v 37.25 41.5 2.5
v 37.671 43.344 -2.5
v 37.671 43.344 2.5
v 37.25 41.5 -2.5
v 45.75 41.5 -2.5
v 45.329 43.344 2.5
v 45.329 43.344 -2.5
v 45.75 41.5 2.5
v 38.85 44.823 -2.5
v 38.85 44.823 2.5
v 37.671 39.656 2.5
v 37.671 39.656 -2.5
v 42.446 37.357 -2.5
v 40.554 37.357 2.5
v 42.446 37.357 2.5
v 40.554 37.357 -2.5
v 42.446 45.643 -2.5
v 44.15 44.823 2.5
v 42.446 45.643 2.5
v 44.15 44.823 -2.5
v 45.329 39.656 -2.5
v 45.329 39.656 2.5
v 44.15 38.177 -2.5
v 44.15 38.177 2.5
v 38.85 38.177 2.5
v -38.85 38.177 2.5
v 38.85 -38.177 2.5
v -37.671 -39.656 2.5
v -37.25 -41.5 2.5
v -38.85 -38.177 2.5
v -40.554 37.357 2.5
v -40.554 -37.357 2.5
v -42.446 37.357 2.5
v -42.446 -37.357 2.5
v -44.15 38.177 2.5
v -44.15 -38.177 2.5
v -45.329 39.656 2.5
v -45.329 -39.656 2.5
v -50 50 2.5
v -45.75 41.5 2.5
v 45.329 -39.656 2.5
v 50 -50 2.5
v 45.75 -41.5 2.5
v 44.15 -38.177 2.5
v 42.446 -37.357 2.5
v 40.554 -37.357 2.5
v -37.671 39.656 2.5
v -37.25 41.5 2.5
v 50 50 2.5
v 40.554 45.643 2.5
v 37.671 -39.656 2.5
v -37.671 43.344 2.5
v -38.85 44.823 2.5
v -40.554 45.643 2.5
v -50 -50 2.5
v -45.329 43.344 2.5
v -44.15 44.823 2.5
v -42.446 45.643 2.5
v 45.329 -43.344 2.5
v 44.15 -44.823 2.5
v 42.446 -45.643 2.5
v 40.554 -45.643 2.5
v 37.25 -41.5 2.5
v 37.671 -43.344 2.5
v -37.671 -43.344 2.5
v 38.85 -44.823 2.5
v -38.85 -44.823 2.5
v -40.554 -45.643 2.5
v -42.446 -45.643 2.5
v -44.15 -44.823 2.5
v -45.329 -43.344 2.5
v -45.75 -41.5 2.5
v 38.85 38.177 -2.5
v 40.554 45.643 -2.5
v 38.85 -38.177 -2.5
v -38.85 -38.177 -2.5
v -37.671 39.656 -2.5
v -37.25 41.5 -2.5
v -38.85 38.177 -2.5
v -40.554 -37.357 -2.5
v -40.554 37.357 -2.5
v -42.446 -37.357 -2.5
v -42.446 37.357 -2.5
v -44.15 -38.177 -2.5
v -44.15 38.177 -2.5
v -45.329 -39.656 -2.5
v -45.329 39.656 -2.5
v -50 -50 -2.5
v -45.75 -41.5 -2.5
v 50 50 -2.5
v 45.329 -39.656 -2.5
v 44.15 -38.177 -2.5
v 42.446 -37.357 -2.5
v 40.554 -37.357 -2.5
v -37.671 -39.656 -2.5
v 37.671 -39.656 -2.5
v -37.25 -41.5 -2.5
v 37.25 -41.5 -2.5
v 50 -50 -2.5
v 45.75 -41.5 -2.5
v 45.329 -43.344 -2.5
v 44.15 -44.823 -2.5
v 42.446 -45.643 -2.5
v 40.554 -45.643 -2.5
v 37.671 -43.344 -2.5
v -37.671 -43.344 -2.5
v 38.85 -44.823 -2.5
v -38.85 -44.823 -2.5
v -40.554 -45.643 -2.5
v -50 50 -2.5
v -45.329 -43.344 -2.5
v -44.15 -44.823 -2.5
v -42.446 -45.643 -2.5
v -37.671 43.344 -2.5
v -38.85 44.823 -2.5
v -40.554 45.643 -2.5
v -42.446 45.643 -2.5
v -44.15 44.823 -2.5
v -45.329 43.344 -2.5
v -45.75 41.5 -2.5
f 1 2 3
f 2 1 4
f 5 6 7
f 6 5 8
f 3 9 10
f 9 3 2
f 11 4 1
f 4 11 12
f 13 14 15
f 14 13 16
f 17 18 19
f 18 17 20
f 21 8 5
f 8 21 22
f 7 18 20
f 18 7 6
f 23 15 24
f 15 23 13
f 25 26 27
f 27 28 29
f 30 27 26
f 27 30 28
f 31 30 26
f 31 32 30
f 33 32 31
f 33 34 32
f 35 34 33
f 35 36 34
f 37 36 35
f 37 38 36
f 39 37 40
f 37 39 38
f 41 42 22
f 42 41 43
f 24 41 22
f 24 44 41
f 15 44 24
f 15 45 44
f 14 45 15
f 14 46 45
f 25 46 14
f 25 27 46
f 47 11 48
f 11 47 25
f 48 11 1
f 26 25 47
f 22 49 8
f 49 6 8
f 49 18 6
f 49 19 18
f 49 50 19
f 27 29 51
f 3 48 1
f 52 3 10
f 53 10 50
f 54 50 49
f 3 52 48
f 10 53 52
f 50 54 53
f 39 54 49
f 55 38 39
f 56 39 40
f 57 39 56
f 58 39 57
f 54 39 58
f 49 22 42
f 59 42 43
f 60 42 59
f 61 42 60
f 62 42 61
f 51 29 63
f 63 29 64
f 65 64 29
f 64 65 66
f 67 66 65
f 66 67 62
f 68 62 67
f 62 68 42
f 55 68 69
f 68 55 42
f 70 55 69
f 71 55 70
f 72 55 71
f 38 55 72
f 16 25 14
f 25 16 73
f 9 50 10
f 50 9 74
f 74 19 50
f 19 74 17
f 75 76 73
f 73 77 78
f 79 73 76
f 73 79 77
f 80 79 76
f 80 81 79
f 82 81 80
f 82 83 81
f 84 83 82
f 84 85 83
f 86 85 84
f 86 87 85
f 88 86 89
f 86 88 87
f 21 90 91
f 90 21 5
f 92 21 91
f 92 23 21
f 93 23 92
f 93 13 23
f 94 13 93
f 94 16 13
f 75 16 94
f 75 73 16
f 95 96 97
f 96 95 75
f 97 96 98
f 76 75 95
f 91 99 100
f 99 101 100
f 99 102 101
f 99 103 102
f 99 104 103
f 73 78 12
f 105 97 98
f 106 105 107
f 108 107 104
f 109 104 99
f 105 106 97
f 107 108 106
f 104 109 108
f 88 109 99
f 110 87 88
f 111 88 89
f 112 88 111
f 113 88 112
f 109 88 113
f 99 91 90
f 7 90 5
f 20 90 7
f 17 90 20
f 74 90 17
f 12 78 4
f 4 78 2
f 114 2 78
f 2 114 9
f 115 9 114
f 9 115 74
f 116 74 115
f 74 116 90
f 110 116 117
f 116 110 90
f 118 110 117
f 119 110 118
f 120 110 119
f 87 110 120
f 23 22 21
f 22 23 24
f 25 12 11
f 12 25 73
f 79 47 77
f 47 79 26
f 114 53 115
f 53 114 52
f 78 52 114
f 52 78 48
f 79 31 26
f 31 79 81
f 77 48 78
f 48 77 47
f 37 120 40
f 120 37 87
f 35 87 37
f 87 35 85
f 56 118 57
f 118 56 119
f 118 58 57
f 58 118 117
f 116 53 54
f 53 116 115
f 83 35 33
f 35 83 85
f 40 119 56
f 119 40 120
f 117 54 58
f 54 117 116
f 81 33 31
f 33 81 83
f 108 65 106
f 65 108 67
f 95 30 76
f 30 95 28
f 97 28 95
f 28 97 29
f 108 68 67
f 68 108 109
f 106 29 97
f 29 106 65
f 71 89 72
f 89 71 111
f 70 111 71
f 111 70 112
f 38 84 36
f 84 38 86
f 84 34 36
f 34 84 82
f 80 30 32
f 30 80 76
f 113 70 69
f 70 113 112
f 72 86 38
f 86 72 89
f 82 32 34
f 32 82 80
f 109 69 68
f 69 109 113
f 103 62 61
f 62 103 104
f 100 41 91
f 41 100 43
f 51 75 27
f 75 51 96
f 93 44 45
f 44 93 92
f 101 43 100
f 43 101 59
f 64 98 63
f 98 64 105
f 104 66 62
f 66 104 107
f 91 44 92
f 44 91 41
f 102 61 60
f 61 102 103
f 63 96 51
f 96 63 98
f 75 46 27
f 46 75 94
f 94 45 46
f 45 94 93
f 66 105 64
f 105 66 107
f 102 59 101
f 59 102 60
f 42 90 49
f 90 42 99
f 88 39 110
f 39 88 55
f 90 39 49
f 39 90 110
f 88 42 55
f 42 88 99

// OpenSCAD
// Generated by SolidPython 1.1.3 on 2024-03-13 12:59:54


difference() {
	cube(center = true, size = [100, 100, 5]);
	union() {
		translate(v = [41.5000000000, 41.5000000000]) {
			cylinder(center = true, h = 5, r = 4.2500000000);
		}
		translate(v = [-41.5000000000, 41.5000000000]) {
			cylinder(center = true, h = 5, r = 4.2500000000);
		}
		translate(v = [-41.5000000000, -41.5000000000]) {
			cylinder(center = true, h = 5, r = 4.2500000000);
		}
		translate(v = [41.5000000000, -41.5000000000]) {
			cylinder(center = true, h = 5, r = 4.2500000000);
		}
	}
}
/***********************************************
*********      SolidPython code:      **********
************************************************
 
import solid
import numpy as np
import numbers
import pudb
from solid.utils import *
import viewscad
import subprocess
import os
import os.path as osp
import math
import sys

chamfer_extrude=solid.import_scad("./chamfer_extrude.scad")
chamfer_extrude=chamfer_extrude.chamfer_extrude
r = viewscad.Renderer(width=800, height=800)

def debug(model,f_name,path="/home/ts/code/projects/mfd/designs/debug"):
    solid.scad_render_to_file(model,osp.join(path,f_name)+".scad")
#generate position list of wells using offset from center
wells_pos_from_center_4 = lambda offset: [[-offset,offset],
                                        [offset, offset],
                                        [-offset, -offset],
                                        [offset, -offset]]
wells_pos_from_center_2 = lambda offset: [[offset,0],
                                        [-offset,0]]

def make_well(dims,shape=None,height=None,dxf=False):
    def circle_cylinder():
        if dxf or (height is None):
            well = solid.circle(r=dims, segments=64)
        else:
            well = solid.cylinder(r=dims, h=height, segments=64, center = True)
        return well
    if dims is None:
        sys.exit("radius needs to be a number")
    if isinstance(dims, numbers.Number):
        well =circle_cylinder()
    elif len(dims)==1:
        if isinstance(dims[1], numbers.Number):
            well =circle_cylinder()
        else:
            sys.exit("radius needs to be a number")
    elif len(dims)==2:
        well = solid.square(dims,center = True)
    elif len(dims)==3:
        well = solid.cube(dims, center = True)
    return well

def wells_top_bottom(center_gap,device_dims=None,shape=None,height=None, positions = None, dxf = False,well_shape=None):
    if well_shape == None:
        well_shape = make_well(device_dims,shape=shape,height=height,dxf=dxf)
    wells = []
    if positions is None:
        offset = radius+radius/2.0
        positions = wells_pos_from_center_2(offset)
    if dxf or (height is None):
        height = 0
    for position in positions:
        if dxf:
            wells.append(solid.translate([position[0],position[1]])(well_shape))
        else:
            wells.append(solid.translate([position[0],position[1],height/2.0])(well_shape))
    return  union()(*wells)

#place wells in four corners 
def four_corner(radius,height=None, positions = None, dxf = False):
    #if well pos not specified set
    #to equally spaced by half radius
    if positions is None:
        offset = radius+radius/2.0
        positions = wells_pos_from_center_4(offset)
    if dxf or (height is None):
        height = 0
    #make wells at positions with specified radius and height
    wells = []
    for position in positions:
        #make circle if making dxf
        if dxf:
            well_shape = solid.circle(r=radius, segments=64)
            well_shape = solid.translate([position[0],position[1]])(well_shape)
        #if stl make cylinder
        else:
            well_shape = solid.cylinder(r=radius, h=height, segments=64, center = True)
            well_shape = solid.translate([position[0],position[1],height/2.0])(well_shape)
        wells.append(well_shape)
    return  union()(*wells)

#generate channels 
def make_channels(length,width,height=0,num_chans=1,max_chans=None,spacing=None, dxf = False,
                  rotate_channels=False):
    if dxf or (height is None):
        height = 0
    #if channel gap not defined, is equal to
    if spacing is None: spacing = width
    #calculate number of channels if fitting max num within given width
    if not max_chans is None:
        import math
        num_chans = math.floor((max_chans-spacing)/(width+spacing))
    #get total width of channel section  
    total_width = (width*num_chans)+(spacing*(num_chans-1))

    #make template channel
    #if rotate_channels: width, length = length, width
    if dxf:
        channel_t = solid.square([length,width],center = True)
    else:
        channel_t = solid.cube([length,width,height], center = True)

    #if number channels is even, offset the first channel to center its gap
    if num_chans % 2 == 0: centering = -(width/2.0+spacing/2.0)
    else: centering = 0
    #move template channel up to align bottom at z = 0 
    #and offset center if necessary
    if dxf:
        channel_t = solid.translate([0,centering])(channel_t)
    else:
        channel_t = solid.translate([0,centering,height/2.0])(channel_t)

    #if rotate_channels: length,width = width,length
    #start making the channels
    channels = []
    for i in range(num_chans):
        #if i=0 there is no translation
        #if i=1, we make the first channel adjacent to second
        direction = i

        #if i>=1, we add channels alternating left and right
        if i >= 1:
            direction = -(i/2.0)
            if i % 2 == 1: direction = (-direction)+0.5
                
        #make channel at right position and add it to channel list
        translation_coords = [0,direction*(width+spacing)]
        #if rotate_channels: translation_coords = [direction*(width+spacing),0]
        if dxf:
            channel = solid.translate(translation_coords)(channel_t)
        else:
            channel = solid.translate([*translation_coords,0])(channel_t)
        channels.append(channel)
    
    #group all channels as one object
    channels = union()(*channels)
    #compute the x,y,z dimensions in order to pass as arguments 
    #for construction of other parts of device (such as the chambers)
    measurements = {'x':(length/2.0,-length/2.0),
                    'y':(total_width/2.0,-total_width/2.0)}
    if not dxf:
        measurements['z'] = (height,0)
    if rotate_channels:
        channels = solid.rotate(90)(channels)
        measurements['x'],measurements['y']=measurements['y'],measurements['x']
    return channels,measurements

def make_chambers(msrs,height=None,extra=0,len_until=None,width=None, dxf = False):
    #computes x,y,z length
    total = lambda x : abs(x[0]) + abs(x[1])
    
    #if specific height if specified
    #otherwise use same height as channels
    if dxf:
        pass
    elif not height is None:
        msrs['z'] = (height,0)
    else:
        msrs['z'] = (0,0)
        
    #make copy of measurements from channels to modify chamber dimensions 
    #and add length to chambers as specified
    chamber_dims = msrs.copy()
    #calculate length of chamber to reach specified offset
    if not len_until is None:
        chamber_len = len_until-(msrs['x'][0])
    #or add specified length to channel length (if not specified, adds 0)
    else:
        chamber_len = msrs['x'][0]+extra
    #set the chamber length based 
    chamber_dims['x'] = (chamber_len/2.0,-(chamber_len/2.0))
    #compute final dimensions of chamber
    if not width is None:
        chamber_dims['y'] = (width/2.0,-width/2.0)
    chamber_dims = [total(size) for size in chamber_dims.values()]
        
    #calculate chamber translation offset to place adjacent to channels
    chamber_trslt = msrs['x'][0]+(chamber_len/2.0)
    #compute chamber translation coordinates to align with channels
    #x = 1 moves chamber above channels
    #x = -1 moves chamber below channels
    if dxf:
        trslt = lambda x : [x*(chamber_trslt),0]
    else:
        trslt = lambda x : [x*(chamber_trslt),0,msrs['z'][0]/2.0]
    
    #function to make chamber at top or at bottom 
    if dxf:
        move = lambda x : solid.translate(trslt(x))(solid.square(chamber_dims, center = True) )
    else:
        move = lambda x : solid.translate(trslt(x))(solid.cube(chamber_dims,center = True))
    #make top and bottom chambers and return them as grouped
    top = move(1)
    bottom = move(-1)
    #chambers=solid.rotate(90)(solid.union()(top,bottom))
    chambers=(solid.union()(top,bottom))

    return chambers

#create alignment features 
def alignment_features(unit,dims,grid_size, mask_size = None, alignment = "hollow", units_from_center = (2.5,2.5), corner_len=None):
    width = grid_size[0]*dims[0]
    length = grid_size[1]*dims[1]
    if mask_size is None and corner_len is None:
        corner_len = (dims[0] + dims[1]) /2 / 8
    corner = lambda thickness_div : solid.union()( solid.square([corner_len,corner_len/thickness_div],center=False), solid.square([corner_len/thickness_div,corner_len],center=False) )
    
    def make_full(thickness_div):
        thickness = corner_len/thickness_div
        tr = solid.translate([0, 0, 0 ])(solid.rotate(180)(corner(thickness_div)))
        tr = solid.translate([thickness/2,thickness/2,0])(tr)
        bl = solid.translate([0, 0, 0 ])(solid.rotate(0)(corner(thickness_div)))
        bl = solid.translate([-thickness/2,-thickness/2,0])(bl)
        return solid.union()(tr,bl)
    
    def make_hollow(thickness_div):
        thickness = corner_len/(thickness_div/2)
        inner = make_full(thickness_div)
        outer = make_full(thickness_div/2)
        hollow = outer - inner 
        return hollow
    
    center = (width /2 , length/2)
    mask_pos = lambda x,y : (center[0] + x*(float(units_from_center[0])*dims[0]), center[1] + y*(float(units_from_center[1])*dims[1]))
    positions = []
    positions.append(mask_pos(1,0))
    positions.append(mask_pos(0,1))
    positions.append(mask_pos(-1,0))
    positions.append(mask_pos(0,-1))
    make_mask = lambda mtype : make_hollow(8) if mtype == "hollow" else make_full(8)
    masks = [ solid.translate([*position,0])(make_mask(alignment)) for position in positions]
    
    solid.scad_render_to_file(solid.union()(*masks),"./designs/open_chamber/masks.scad")
    #return unit - solid.union()(*masks)
    return solid.union()(*masks,unit)

def create_outline(thickness, array, dims, grid_size,):
    width = grid_size[0]*dims[0] + thickness *2
    length = grid_size[1]*dims[1] + thickness *2
    outer = solid.translate([-thickness, -thickness,0])(solid.square([width, length]))
    return outer-array

def create_wall(wall_thickness, outline_thickness, dims, grid_size, wall_height = 2000, dxf = False):
    inner_width = grid_size[0]*dims[0] + outline_thickness *2
    inner_length = grid_size[1]*dims[1] + outline_thickness *2
    outer_width = inner_width + wall_thickness * 2
    outer_length = inner_length + wall_thickness * 2
    outer_pos_x = -outline_thickness-wall_thickness
    outer_pos_y = -outline_thickness-wall_thickness
    inner_pos_x = -outline_thickness
    inner_pos_y = -outline_thickness
    if dxf:
        inner_wall = solid.translate([inner_pos_x,
                                      inner_pos_y,
                                      0])(solid.square([inner_width, inner_length]))
        outer_wall = solid.translate([outer_pos_x,
                                      outer_pos_y,
                                      0])(solid.square([outer_width, outer_length]))

        return outer_wall-inner_wall
    else:
        inner_wall = solid.translate([inner_pos_x,
                                      inner_pos_y,
                                      0])(solid.cube([inner_width, inner_length,wall_height]))
        outer_wall = solid.translate([outer_pos_x,
                                      outer_pos_y,
                                      0])(solid.cube([outer_width, outer_length,wall_height]))

        return outer_wall-inner_wall, {'wall_height': wall_height,
                                       'wall_thickness': wall_thickness,
                                       'inner_width':inner_width,
                                       'inner_length': inner_length,
                                       'outer_width': outer_width,
                                       'outer_length': outer_length,
                                       'outer_pos_x' : outer_pos_x,
                                       'outer_pos_y' : outer_pos_y,
                                       'inner_pos_x' : inner_pos_x,
                                       'inner_pos_y' : inner_pos_y}

def create_thicker_wall(wall_thickness, outer_wall_offset, wall_dims, dims, grid_size, height_start = .2, height_end=2, dxf = False):
    addon_wall,thicker_wall_dims = create_wall(wall_thickness, outer_wall_offset, dims, grid_size, wall_height=height_end-height_start, dxf = False)
    addon_wall = solid.translate([0,0,height_start])(addon_wall)

    thicker_wall_dims['wall_height'] = height_end
    thicker_wall_dims['wall_thickness'] = wall_dims['wall_thickness'] + wall_thickness
    return addon_wall, thicker_wall_dims
 
def add_lock_to_wall(wall,wall_dims,y_offset = 0,cut_ratio=0.7,L_length=3, gap_ratio=0.05, axis="x",width_ratio=1/2):
    # Makes L shape
    def make_L(max_length,length_thickness,max_width,width_thickness,height,y_offset):
        length = solid.cube([max_length,length_thickness,height])
        width = solid.cube([width_thickness,max_width,height])
        width = solid.translate([max_length-(width_thickness),0,0])(width)
        L = solid.union()(width,length)
        debug(L,"L")
        if axis == "x":
            L = solid.rotate(-90)(L)
            L = solid.translate([0,max_length,0])(L)
        else:
            L = solid.rotate(-180)(L)
            L = solid.translate([max_length,max_width,0])(L)
        return solid.translate([0,0,y_offset])(L)
    
    lock_length = L_length
    lock_width = wall_dims['wall_thickness']*width_ratio
    lock_length_thickness = lock_width/2
    lock_width_thickness = lock_width/2
    L_lock = make_L(lock_length,lock_length_thickness,lock_width,lock_width_thickness, wall_dims['wall_height']-y_offset, y_offset)
    
    margin_space = lock_length - lock_length*(1-gap_ratio)
    key_length = lock_length-margin_space
    key_length_thickness = lock_length_thickness-(margin_space*2)
    key_width = lock_width-(margin_space*2)
    key_width_thickness = lock_width_thickness-(margin_space*2)
    L_key = make_L(key_length,key_length_thickness,key_width,key_width_thickness, wall_dims['wall_height']-y_offset, y_offset)
    L_key = solid.translate([margin_space,margin_space,0])(L_key)
    L = solid.union()(L_lock,L_key)
    debug(L,"L")
    
    #Make cube to be used as negative to split frame in a half
    #Can choose if making left or right negative, specify ratio of split
    def make_negative(right,cut_ratio):
        if axis == "x":
            if right:
                length = wall_dims['outer_length']*(1-cut_ratio)
                pos_x = wall_dims['outer_pos_x']+(wall_dims['outer_length']*cut_ratio)
            else:
                length = wall_dims['outer_length']*(cut_ratio)
                pos_x = wall_dims['outer_pos_x'] 
            negative = solid.cube([wall_dims['outer_width'],length, wall_dims['wall_height']])
            negative = solid.translate([wall_dims['outer_pos_y'],pos_x,0])(negative)
        else:
            if right:
                length = wall_dims['outer_width']*(1-cut_ratio)
                pos_x = wall_dims['outer_pos_y']+(wall_dims['outer_width']*cut_ratio)
            else:
                length = wall_dims['outer_width']*(cut_ratio)
                pos_x = wall_dims['outer_pos_y'] 
            negative = solid.cube([length,wall_dims['outer_length'], wall_dims['wall_height']])
            negative = solid.translate([pos_x,wall_dims['outer_pos_x'],0])(negative)
        return negative, pos_x, length 
                      
    #Make negatives
    negative_right, right_half_pos_x, right_half_length = make_negative(True,cut_ratio)
    negative_left, left_half_pos_x, right_half_length = make_negative(False,cut_ratio)
    #Make halves
    left_half = solid.difference()(wall,negative_right)
    right_half = solid.difference()(wall,negative_left)
    def place_L(L, L_length,L_width):
        #Place L on top wall       
        offset_to_center = (wall_dims['wall_thickness']-L_width)/2
        if axis == "x":
            y_pos_top = (wall_dims['outer_pos_y'] +
                    wall_dims['outer_width'] - 
                    L_width - offset_to_center)
            top_L = solid.translate([y_pos_top,
                                     right_half_pos_x-(L_length),
                                     0])(L)
            #Place L on bottom wall       
            y_pos_bottom = wall_dims['outer_pos_y']+offset_to_center
            bottom_L = solid.translate([y_pos_bottom,
                                        right_half_pos_x-L_length,
                                        0])(L)
        else:
            y_pos_top = (wall_dims['outer_pos_x'] +
                    wall_dims['outer_length'] -
                    (L_width+offset_to_center))
            top_L = solid.translate([right_half_pos_x-L_length,
                                     y_pos_top,
                                     0])(L)
            #Place L on bottom wall       
            y_pos_bottom = wall_dims['outer_pos_y']+offset_to_center
            bottom_L = solid.translate([right_half_pos_x-L_length,
                                        y_pos_bottom,
                                        0])(L)
        return bottom_L, top_L
    #Make complimentary L pieces through union and differences
    #Make Lock
    bottom_L_lock, top_L_lock = place_L(L_lock,L_length,lock_width)
    left_half = solid.difference()(left_half,bottom_L_lock)
    left_half = solid.difference()(left_half,top_L_lock)
    #Make Key
    bottom_L_key, top_L_key = place_L(L_key,L_length,lock_width)
    right_half = solid.union()(right_half,bottom_L_key)
    right_half = solid.union()(right_half,top_L_key)
    return left_half, right_half


#build a row x col grid of containment units
def make_unit_array(unit,dims,grid_size, dxf = False, alignment = None, mask_size = None,
                    units_from_center = None,alignment_offset=None, alignment_mark_size=1):
    units = []
    for col in range(grid_size[1]):
        for row in range(grid_size[0]):
            if dxf:
                units.append(solid.translate([row*dims[0],col*dims[1]])(unit))
            else:
                units.append(solid.translate([row*dims[0],col*dims[1],dims[2]/2.0])(unit))
    array = solid.union()(*units)
    if (not alignment is None) and dxf:
        if not alignment_offset is None:
            array = solid.translate([alignment_offset[0],alignment_offset[1]])(array)
        array = alignment_features(array,dims, grid_size, alignment = alignment, mask_size = None, units_from_center = units_from_center,corner_len=alignment_mark_size)
        if not alignment_offset is None:
            array = solid.translate([-alignment_offset[0],-alignment_offset[1]])(array)
    return array


def make_taylor(wells_pos = wells_pos_from_center_4(2.25), well_rad = 1.5 ,
                well_height = 2, chan_w = 0.01, chan_l = 1, chan_h = 0.010 ,
                chan_gap = 0.040, max_chans = None,num_chans=100, chamber_height  = 0.100,
                columns = 1, rows = 1, chamber_len_until=2.25, add_channels = True, add_wells = True, 
                add_chambers = True, save_path = "./", alignment = None, units_from_center = 2,
                mask_size = None, render_stl = False, outline_thickness = 0.050, dxf = True,
                wall_height = 15, wall_thickness = 0.95, casing_x=9, casing_y=9, casing_z=0,rotate_units=0):

    dims = [casing_x, casing_y, casing_z]
    wells = four_corner(well_rad,well_height, dxf = dxf, positions = wells_pos)
    debug(wells,"wells")
    channels, msrs = make_channels(chan_l,chan_w,chan_h,dxf=dxf, spacing = chan_gap, max_chans=max_chans,num_chans=num_chans)
    debug(channels,"channels")
    chambers = make_chambers(msrs,dxf = dxf, height=chamber_height,len_until=chamber_len_until)
    debug(chambers,"chambers")

    #add together and render
    device_parts = []
    if add_channels:
        device_parts.append(channels)
    if add_wells:
        device_parts.append(wells)
    if add_chambers:
        device_parts.append(chambers)
    device=union()(*device_parts)
    device = rotate(rotate_units)(device)

    device=solid.translate([dims[0]/2.0,dims[1]/2.0,0])(device)
    channels = rotate(rotate_units)(channels)
    channels=solid.translate([dims[0]/2,dims[1]/2,0])(channels)
    chambers_wells = union()(wells,chambers)
    chambers_wells = rotate(rotate_units)(chambers_wells)
    chambers_wells=solid.translate([dims[0]/2,dims[1]/2,0])(chambers_wells)

    file_name = str(rows)+'x'+str(columns)+'_units_'
    grid_size = [rows,columns]

    if alignment:
        alignment="full"
    device = make_unit_array(device,dims,grid_size, dxf=dxf, alignment = alignment,
                                 units_from_center = units_from_center)
    channels = make_unit_array(channels,dims,grid_size, dxf=dxf, alignment = alignment,
                                 units_from_center = units_from_center)
    if alignment=="full":
        alignment="hollow"

    chambers_wells = make_unit_array(chambers_wells,dims,grid_size, dxf=dxf, alignment = alignment,
                                 units_from_center =units_from_center)

    def save_model(model,prefix):
        model_fname = os.path.abspath(save_path+prefix+"_"+file_name+".scad")
        solid.scad_render_to_file(model,model_fname)
        return model_fname

    wells_fname = save_model(wells,"wells")
    channels_fname = save_model(channels,"channels")
    device_fname = save_model(device,"device")
    chambers_wells_fname = save_model(chambers_wells,"chambers_wells")
    return (chambers_wells,chambers_wells_fname), (channels,channels_fname), (device,device_fname)

def make_device(design='open',rows=8,columns=6,wells_pos = 4.5,well_offset=3.2, well_rad=3.2,well_height=0.1,
                chan_l=1,chan_w=0.01,chan_h=0.01,chan_gap=0.015,num_chans=101,dxf=True,save_path="./designs/open_chamber/",
                casing_x=9.0,casing_y=18.0,casing_z=0,rotate_units=90,units_from_center=(3,1),chamber_len_until=4.5,
                chamber_width=None,alignment=True, add_wells=True, add_channels=True,add_chambers=True,well_shape=None):

    dims = [casing_x, casing_y, casing_z]
    if design == "open":
        wells_pos=wells_pos_from_center_2(wells_pos)
        wells = wells_top_bottom(well_offset*2,device_dims=well_rad,height=well_height, dxf = dxf, positions = wells_pos,well_shape=well_shape)
    elif design == "closed":
        wells_pos=wells_pos_from_center_4(wells_pos)
        debug(wells,"wells")
        wells = four_corner(well_offset,well_height,device_dims=well_rad, dxf = dxf, positions = wells_pos)
    else:
        print(design+" is not a valid design.\n Choose valid design: 'open' or 'closed'")
        exit()
    wells = rotate(rotate_units)(wells)
    wells=solid.translate([dims[0]/2,dims[1]/2,0])(wells)
    debug(wells,"wells")

    channels, msrs = make_channels(chan_l,chan_w,chan_h,dxf=dxf, spacing = chan_gap, num_chans=num_chans,rotate_channels=False)
    channels = rotate(rotate_units)(channels)
    channels=solid.translate([dims[0]/2,dims[1]/2,0])(channels)

    chambers=make_chambers(msrs,height=None,extra=0,len_until=chamber_len_until, width=chamber_width,dxf = dxf)
    chambers = rotate(rotate_units)(chambers)
    chambers=solid.translate([dims[0]/2,dims[1]/2,0])(chambers)

    device_parts = []
    if add_channels:
        device_parts.append(channels)
    if add_wells:
        device_parts.append(wells)
    if add_chambers:
        device_parts.append(chambers)
    device = union()(*device_parts)
    #device = rotate(rotate_units)(device)
    #device=solid.translate([dims[0]/2.0,dims[1]/2.0,0])(device)

    chambers_wells = []
    if add_chambers:
        chambers_wells.append(chambers)
    if add_wells:
        chambers_wells.append(wells)
    chambers_wells = union()(*chambers_wells)
    #chambers_wells = union()(wells,chambers)
    #chambers_wells = rotate(rotate_units)(chambers_wells)
    #chambers_wells=solid.translate([dims[0]/2,dims[1]/2,0])(chambers_wells)

    file_name = str(rows)+'x'+str(columns)+'_units_'

    grid_size = [rows,columns]
    if alignment:
        alignment="full"
    device = make_unit_array(device,dims,grid_size, dxf=dxf, alignment = alignment,
                                 units_from_center = units_from_center)
    channels = make_unit_array(channels,dims,grid_size, dxf=dxf, alignment = alignment,
                                 units_from_center = units_from_center)
    if alignment=="full":
        alignment="hollow"

    chambers_wells = make_unit_array(chambers_wells,dims,grid_size, dxf=dxf, alignment = alignment,
                                 units_from_center =units_from_center)

    def save_model(model,prefix):
        model_fname = os.path.abspath(save_path+prefix+"_"+file_name+".scad")
        solid.scad_render_to_file(model,model_fname)
        return model_fname

    wells_fname = save_model(wells,"wells")
    channels_fname = save_model(channels,"channels")
    device_fname = save_model(device,"device")
    chambers_wells_fname = save_model(chambers_wells,"chambers_wells")
    return (chambers_wells,chambers_wells_fname), (channels,channels_fname), (device,device_fname)


def make_open_chamber(rows=8,columns=6,wells_pos = wells_pos_from_center_2(4.5), well_rad=3.2,well_height=0.1,
                      chan_l=1,chan_w=0.01,chan_h=0.01,chan_gap=0.015,num_chans=101,dxf=True,save_path="./designs/open_chamber/",
                      casing_x=9.0,casing_y=18.0,casing_z=0,rotate_units=90,units_from_center=(3,1),chamber_len_until=4.5,
                      chamber_width=None,alignment=True, add_wells=True, add_channels=True,add_chambers=True,well_shape=None):

    dims = [casing_x, casing_y, casing_z]
    wells = wells_top_bottom(well_rad,height=well_height, dxf = dxf, positions = wells_pos, well_shape=well_shape)
    channels, msrs = make_channels(chan_l,chan_w,chan_h,dxf=dxf, spacing = chan_gap, num_chans=num_chans,rotate_channels=False)
    chambers=make_chambers(msrs,height=None,extra=0,len_until=chamber_len_until, width=chamber_width,dxf = dxf)
    debug(chambers,"chambers")
    device_parts = []
    if add_channels:
        device_parts.append(channels)
    if add_wells:
        device_parts.append(wells)
    if add_chambers:
        device_parts.append(chambers)
    device = union()(*device_parts)
    device = rotate(rotate_units)(device)
    device=solid.translate([dims[0]/2.0,dims[1]/2.0,0])(device)
    channels = rotate(rotate_units)(channels)
    channels=solid.translate([dims[0]/2,dims[1]/2,0])(channels)
    chambers_wells = union()(wells,chambers)
    chambers_wells = rotate(rotate_units)(chambers_wells)
    chambers_wells=solid.translate([dims[0]/2,dims[1]/2,0])(chambers_wells)

    file_name = str(rows)+'x'+str(columns)+'_units_'

    grid_size = [rows,columns]
    if alignment:
        alignment="full"
    device = make_unit_array(device,dims,grid_size, dxf=dxf, alignment = alignment,
                                 units_from_center = units_from_center)
    channels = make_unit_array(channels,dims,grid_size, dxf=dxf, alignment = alignment,
                                 units_from_center = units_from_center)
    if alignment=="full":
        alignment="hollow"

    chambers_wells = make_unit_array(chambers_wells,dims,grid_size, dxf=dxf, alignment = alignment,
                                 units_from_center =units_from_center)

    def save_model(model,prefix):
        model_fname = os.path.abspath(save_path+prefix+"_"+file_name+".scad")
        solid.scad_render_to_file(model,model_fname)
        return model_fname

    wells_fname = save_model(wells,"wells")
    channels_fname = save_model(channels,"channels")
    device_fname = save_model(device,"device")
    chambers_wells_fname = save_model(chambers_wells,"chambers_wells")
    return (chambers_wells,chambers_wells_fname), (channels,channels_fname), (device,device_fname)

def to_dxf(scad_path):
    dxf_path = scad_path.replace(".scad",".dxf")
    subprocess.call(["openscad", "-o", dxf_path, scad_path])
    import ezdxf
    temp_dxf = ezdxf.readfile(dxf_path)
    temp_dxf.saveas(dxf_path)

#def make_walls(diameter,thickness,grid_size,dims,height=20,segments=256,make_inner=True):
#    wafer_wall_out = solid.cylinder(r=diameter/2,h=height, segments=segments)
#    wafer_wall_in = solid.cylinder(r=(diameter/2-thickness),h=height, segments=segments)
#    wafer_wall = solid.difference()(wafer_wall_out,wafer_wall_in)
#    wafer_wall = solid.translate([grid_size[1]*dims[1]/2.0,grid_size[0]*dims[0]/2.0])(wafer_wall)
#
#    vertical_wall_length = grid_size[1]*dims[1]
#    horizontal_wall_length = grid_size[0]*dims[0]
#    vertical_wall = solid.cube([vertical_wall_length,thickness,height],center = True)
#    vertical_wall = solid.translate([vertical_wall_length/2,0,height/2])(vertical_wall)
#    horizontal_wall = solid.cube([thickness,horizontal_wall_length,height],center = True)
#    horizontal_wall = solid.translate([0,vertical_wall_length/2,height/2])(horizontal_wall)
#    walls = []
#    walls.append(horizontal_wall)
#    walls.append(vertical_wall)
#    for col in range(grid_size[1]):
#        if col == grid_size[1]-1: 
#            walls.append(solid.translate([0,(col+1)*dims[1]])(vertical_wall))
#        elif col > 0 and col < grid_size[1]-1 and make_inner==True:
#            walls.append(solid.translate([0,(col+1)*dims[1]])(vertical_wall))
#    for row in range(grid_size[0]):
#        if row == grid_size[0]-1: 
#            walls.append(solid.translate([(row+1)*dims[0],0])(horizontal_wall))
#        elif row > 0 and row < grid_size[0]-1 and make_inner==True:
#            walls.append(solid.translate([(row+1)*dims[0],0])(horizontal_wall))
#    walls = union()(*walls)
#    wafer_walls = union()(walls,wafer_wall)
#    return walls,wafer_wall,wafer_walls

def make_walls(diameter,thickness,grid_size,dims,height=20,segments=256,make_inner=True,padx=0,pady=0):
    wafer_wall_out = solid.cylinder(r=diameter/2,h=height, segments=segments)
    wafer_wall_in = solid.cylinder(r=(diameter/2-thickness),h=height, segments=segments)
    wafer_wall = solid.difference()(wafer_wall_out,wafer_wall_in)
    wafer_wall = solid.translate([grid_size[1]*dims[1]/2.0,grid_size[0]*dims[0]/2.0])(wafer_wall)

    vertical_wall_length = grid_size[0]*dims[0]+padx
    horizontal_wall_length = grid_size[1]*dims[1]+pady
    vertical_wall = solid.cube([vertical_wall_length,thickness,height],center = True)
    vertical_wall = solid.translate([vertical_wall_length/2-pady/2,-padx/2,height/2])(vertical_wall)
    horizontal_wall = solid.cube([thickness,horizontal_wall_length,height],center = True)
    horizontal_wall = solid.translate([-pady/2,horizontal_wall_length/2-padx/2,height/2])(horizontal_wall)
    walls = []
    walls.append(horizontal_wall)
    walls.append(vertical_wall)
    for col in range(grid_size[1]):
        if col == grid_size[1]-1: 
            walls.append(solid.translate([0,(col+1)*dims[1]+pady])(vertical_wall))
        elif col > 0 and col < grid_size[1]-1 and make_inner==True:
            walls.append(solid.translate([0,(col+1)*dims[1]])(vertical_wall))
    for row in range(grid_size[0]):
        if row == grid_size[0]-1: 
            walls.append(solid.translate([(row+1)*dims[0]+padx,0])(horizontal_wall))
        elif row > 0 and row < grid_size[0]-1 and make_inner==True:
            walls.append(solid.translate([(row+1)*dims[0],0])(horizontal_wall))
    walls = union()(*walls)
    wafer_walls = union()(walls,wafer_wall)
    return walls,wafer_wall,wafer_walls

def save_model(model,base_path,base_name,dxf=True):
    if not os.path.exists(base_path):
        os.makedirs(base_path)
    dxf_path=osp.join(base_path,base_name+".scad")
    solid.scad_render_to_file(model,osp.join(dxf_path))
    if dxf:
        to_dxf(dxf_path)

def make_wafer(diameter,flat_len,thickness):
    wafer = solid.cylinder(r1=diameter/2,r2=diameter/2,h=thickness,segments=512,)()
    x_start_flat=(flat_len/2)
    y_start_flat = math.sqrt(((diameter/2)**2) - (x_start_flat**2) )
    height_delete_flat=diameter/2-y_start_flat
    flat_delete = solid.cube([flat_len,height_delete_flat,thickness],center=False)()
    flat_delete = solid.translate([-flat_len/2,y_start_flat,0])(flat_delete)
    wafer = solid.difference()(wafer,flat_delete)
    wafer = solid.rotate(90)(wafer)
    return wafer

def add_wafer_to_mask(wafer_size,flat_len,mask,grid_size,dims,wafer_line_thickness=0.1,outer_mask_thickness=5,alignment_offset=None):
    def make_wafer_mask(wafer_size,flat_len):
        wafer_mask = make_wafer(wafer_size,flat_len,1)
        wafer_mask = solid.projection()(wafer_mask)
        wafer_mask = solid.translate([grid_size[0]*dims[0]/2.0,grid_size[1]*dims[1]/2.0])(wafer_mask)
        if not alignment_offset is None:
            wafer_mask = solid.translate([-alignment_offset[0],-alignment_offset[1]])(wafer_mask)
        return wafer_mask

    inner_wafer_line_mask = make_wafer_mask(wafer_size-wafer_line_thickness/2,flat_len)
    outer_wafer_line_mask = make_wafer_mask(wafer_size+wafer_line_thickness/2,flat_len)
    outer_wafer_mask = make_wafer_mask(wafer_size+outer_mask_thickness,flat_len)
    outer_wafer_mask = solid.difference()(outer_wafer_mask,outer_wafer_line_mask)
    wafer_mask = solid.union()(outer_wafer_mask,inner_wafer_line_mask)

    return solid.difference()(wafer_mask,mask)

def make_posts(post_shape,post_height):
    posts = solid.linear_extrude(height=post_height)(post_shape)
    return posts

def make_wafer_empty(diameter,flat_len,thickness,margin,notch_len=20,notch_height=5,oversize=1.01):
    diameter*=oversize
    flat_len*=oversize
    wafer = make_wafer(diameter,flat_len,thickness)
    holder = solid.cylinder(r1=diameter/2+margin,r2=diameter/2+margin,h=thickness,segments=512)()
    holder = solid.difference()(holder,wafer)

    x_start_flat=(flat_len/2)
    y_start_flat = math.sqrt(((diameter/2)**2) - (x_start_flat**2) )
    height_delete_flat=diameter/2-y_start_flat
    notch = solid.cube([notch_len,notch_height,thickness],center=False)()
    notch = solid.translate([-notch_len/2,y_start_flat,0])(notch)
    notch = solid.rotate(90)(notch)
    return solid.difference()(holder,notch)

def wafer_print_calibration(diameter,thickness,height,z_offset):
    circles = []
    radii = []
    radii.append(diameter/2.0*0.8)
    radii.append(diameter/2.0*0.6)
    radii.append(diameter/2.0*0.4)
    radii.append(diameter/2.0*0.2)
    for radius in radii:
        inner = solid.cylinder(r1=radius-(thickness/2.0),r2=radius-(thickness/2.0),h=thickness,segments=512,)()
        outer = solid.cylinder(r1=radius+(thickness/2.0),r2=radius+(thickness/2.0),h=thickness,segments=512,)()
        diff = solid.difference()(outer,inner)
        circles.append(diff)
    circles = solid.union()(*circles)
    circles = solid.translate([0,0,z_offset])(circles)
    return circles

def make_rack(wells,dims,grid_size,alignment_offset,rack_x,rack_y,rack_thickness,bolt_width,add_bolts=True):

    #get X and Y dimensions of gride of pipette tips
    X_len = dims[0]*grid_size[0]
    Y_len = dims[1]*grid_size[1]
    #make rack
    rack = solid.cube([rack_x,rack_y,rack_thickness],center=True)

    if add_bolts:
    #add bolt holes
        bolt_hole=solid.cylinder(r=bolt_width/2,h=rack_thickness,center=True)()
        bolt_holes = []
        bolt_holes.append(solid.translate([rack_x/2-1.5*bolt_width,rack_y/2-1.5*bolt_width])(bolt_hole))
        bolt_holes.append(solid.translate([-rack_x/2+1.5*bolt_width,rack_y/2-1.5*bolt_width])(bolt_hole))
        bolt_holes.append(solid.translate([-rack_x/2+1.5*bolt_width,-rack_y/2+1.5*bolt_width])(bolt_hole))
        bolt_holes.append(solid.translate([rack_x/2-1.5*bolt_width,-rack_y/2+1.5*bolt_width])(bolt_hole))
        bolt_holes = solid.union()(*bolt_holes)
        rack=solid.difference()(rack,bolt_holes)
    rack_support = rack

    #center rack with pipette holes
    rack = solid.translate([0,0,rack_thickness/2])(rack)
    rack = solid.translate([X_len/2,Y_len/2])(rack)
    rack = solid.translate([-alignment_offset[0],-alignment_offset[1]])(rack)
    wells = solid.linear_extrude(height=rack_thickness)(wells)
    rack = solid.difference()(rack,wells)
    return rack, rack_support

def make_pillar(wells,dims,grid_size,alignment_offset,rack_x,rack_y,pillar_height,rack_thickness,bolt_width,add_bolts=True,taper_angle=1,bolt_position_corner=1.5):

    #get X and Y dimensions of gride of pipette tips
    X_len = dims[0]*grid_size[0]
    Y_len = dims[1]*grid_size[1]
    #make rack
    rack = solid.cube([rack_x,rack_y,rack_thickness],center=True)
    
    if add_bolts:
    #add bolt holes
        bolt_hole=solid.cylinder(r=bolt_width/2,h=rack_thickness,center=True)()
        bolt_holes = []
        bolt_holes.append(solid.translate([rack_x/2-bolt_position_corner*bolt_width,rack_y/2-bolt_position_corner*bolt_width])(bolt_hole))
        bolt_holes.append(solid.translate([-rack_x/2+bolt_position_corner*bolt_width,rack_y/2-bolt_position_corner*bolt_width])(bolt_hole))
        bolt_holes.append(solid.translate([-rack_x/2+bolt_position_corner*bolt_width,-rack_y/2+bolt_position_corner*bolt_width])(bolt_hole))
        bolt_holes.append(solid.translate([rack_x/2-bolt_position_corner*bolt_width,-rack_y/2+bolt_position_corner*bolt_width])(bolt_hole))
        bolt_holes = solid.union()(*bolt_holes)
        rack=solid.difference()(rack,bolt_holes)
    rack_support = rack

    #center rack with pipette holes
    #rack = solid.translate([0,0,-rack_thickness])(rack)
    rack = solid.translate([X_len/2,Y_len/2])(rack)
    rack = solid.translate([-alignment_offset[0],-alignment_offset[1]])(rack)
    if not taper_angle == 0:
        wells=chamfer_extrude(pillar_height,taper_angle,segments=20)(wells)
    else:
        wells = solid.linear_extrude(height=pillar_height)(wells)
    rack = solid.union()(rack,wells)
    return rack, rack_support

def deg_taper_len(height,deg):
    if not deg == 0:
        return height*math.tan(math.radians(deg))
    else:
        return 0

def make_outline(inner_dims,wall_thickness,grid_size,dims,alignment_offset):
    inner_dims=np.array(inner_dims)
    inner_outline=solid.square(inner_dims,center=True)
    outer_dims=inner_dims+wall_thickness
    outer_outline=solid.square(outer_dims,center=True)
    outline=solid.difference()(outer_outline,inner_outline)
    outline=solid.translate([grid_size[0]*dims[0]/2.0,grid_size[1]*dims[1]/2.0])(outline)
    return outline








 
 
************************************************/
